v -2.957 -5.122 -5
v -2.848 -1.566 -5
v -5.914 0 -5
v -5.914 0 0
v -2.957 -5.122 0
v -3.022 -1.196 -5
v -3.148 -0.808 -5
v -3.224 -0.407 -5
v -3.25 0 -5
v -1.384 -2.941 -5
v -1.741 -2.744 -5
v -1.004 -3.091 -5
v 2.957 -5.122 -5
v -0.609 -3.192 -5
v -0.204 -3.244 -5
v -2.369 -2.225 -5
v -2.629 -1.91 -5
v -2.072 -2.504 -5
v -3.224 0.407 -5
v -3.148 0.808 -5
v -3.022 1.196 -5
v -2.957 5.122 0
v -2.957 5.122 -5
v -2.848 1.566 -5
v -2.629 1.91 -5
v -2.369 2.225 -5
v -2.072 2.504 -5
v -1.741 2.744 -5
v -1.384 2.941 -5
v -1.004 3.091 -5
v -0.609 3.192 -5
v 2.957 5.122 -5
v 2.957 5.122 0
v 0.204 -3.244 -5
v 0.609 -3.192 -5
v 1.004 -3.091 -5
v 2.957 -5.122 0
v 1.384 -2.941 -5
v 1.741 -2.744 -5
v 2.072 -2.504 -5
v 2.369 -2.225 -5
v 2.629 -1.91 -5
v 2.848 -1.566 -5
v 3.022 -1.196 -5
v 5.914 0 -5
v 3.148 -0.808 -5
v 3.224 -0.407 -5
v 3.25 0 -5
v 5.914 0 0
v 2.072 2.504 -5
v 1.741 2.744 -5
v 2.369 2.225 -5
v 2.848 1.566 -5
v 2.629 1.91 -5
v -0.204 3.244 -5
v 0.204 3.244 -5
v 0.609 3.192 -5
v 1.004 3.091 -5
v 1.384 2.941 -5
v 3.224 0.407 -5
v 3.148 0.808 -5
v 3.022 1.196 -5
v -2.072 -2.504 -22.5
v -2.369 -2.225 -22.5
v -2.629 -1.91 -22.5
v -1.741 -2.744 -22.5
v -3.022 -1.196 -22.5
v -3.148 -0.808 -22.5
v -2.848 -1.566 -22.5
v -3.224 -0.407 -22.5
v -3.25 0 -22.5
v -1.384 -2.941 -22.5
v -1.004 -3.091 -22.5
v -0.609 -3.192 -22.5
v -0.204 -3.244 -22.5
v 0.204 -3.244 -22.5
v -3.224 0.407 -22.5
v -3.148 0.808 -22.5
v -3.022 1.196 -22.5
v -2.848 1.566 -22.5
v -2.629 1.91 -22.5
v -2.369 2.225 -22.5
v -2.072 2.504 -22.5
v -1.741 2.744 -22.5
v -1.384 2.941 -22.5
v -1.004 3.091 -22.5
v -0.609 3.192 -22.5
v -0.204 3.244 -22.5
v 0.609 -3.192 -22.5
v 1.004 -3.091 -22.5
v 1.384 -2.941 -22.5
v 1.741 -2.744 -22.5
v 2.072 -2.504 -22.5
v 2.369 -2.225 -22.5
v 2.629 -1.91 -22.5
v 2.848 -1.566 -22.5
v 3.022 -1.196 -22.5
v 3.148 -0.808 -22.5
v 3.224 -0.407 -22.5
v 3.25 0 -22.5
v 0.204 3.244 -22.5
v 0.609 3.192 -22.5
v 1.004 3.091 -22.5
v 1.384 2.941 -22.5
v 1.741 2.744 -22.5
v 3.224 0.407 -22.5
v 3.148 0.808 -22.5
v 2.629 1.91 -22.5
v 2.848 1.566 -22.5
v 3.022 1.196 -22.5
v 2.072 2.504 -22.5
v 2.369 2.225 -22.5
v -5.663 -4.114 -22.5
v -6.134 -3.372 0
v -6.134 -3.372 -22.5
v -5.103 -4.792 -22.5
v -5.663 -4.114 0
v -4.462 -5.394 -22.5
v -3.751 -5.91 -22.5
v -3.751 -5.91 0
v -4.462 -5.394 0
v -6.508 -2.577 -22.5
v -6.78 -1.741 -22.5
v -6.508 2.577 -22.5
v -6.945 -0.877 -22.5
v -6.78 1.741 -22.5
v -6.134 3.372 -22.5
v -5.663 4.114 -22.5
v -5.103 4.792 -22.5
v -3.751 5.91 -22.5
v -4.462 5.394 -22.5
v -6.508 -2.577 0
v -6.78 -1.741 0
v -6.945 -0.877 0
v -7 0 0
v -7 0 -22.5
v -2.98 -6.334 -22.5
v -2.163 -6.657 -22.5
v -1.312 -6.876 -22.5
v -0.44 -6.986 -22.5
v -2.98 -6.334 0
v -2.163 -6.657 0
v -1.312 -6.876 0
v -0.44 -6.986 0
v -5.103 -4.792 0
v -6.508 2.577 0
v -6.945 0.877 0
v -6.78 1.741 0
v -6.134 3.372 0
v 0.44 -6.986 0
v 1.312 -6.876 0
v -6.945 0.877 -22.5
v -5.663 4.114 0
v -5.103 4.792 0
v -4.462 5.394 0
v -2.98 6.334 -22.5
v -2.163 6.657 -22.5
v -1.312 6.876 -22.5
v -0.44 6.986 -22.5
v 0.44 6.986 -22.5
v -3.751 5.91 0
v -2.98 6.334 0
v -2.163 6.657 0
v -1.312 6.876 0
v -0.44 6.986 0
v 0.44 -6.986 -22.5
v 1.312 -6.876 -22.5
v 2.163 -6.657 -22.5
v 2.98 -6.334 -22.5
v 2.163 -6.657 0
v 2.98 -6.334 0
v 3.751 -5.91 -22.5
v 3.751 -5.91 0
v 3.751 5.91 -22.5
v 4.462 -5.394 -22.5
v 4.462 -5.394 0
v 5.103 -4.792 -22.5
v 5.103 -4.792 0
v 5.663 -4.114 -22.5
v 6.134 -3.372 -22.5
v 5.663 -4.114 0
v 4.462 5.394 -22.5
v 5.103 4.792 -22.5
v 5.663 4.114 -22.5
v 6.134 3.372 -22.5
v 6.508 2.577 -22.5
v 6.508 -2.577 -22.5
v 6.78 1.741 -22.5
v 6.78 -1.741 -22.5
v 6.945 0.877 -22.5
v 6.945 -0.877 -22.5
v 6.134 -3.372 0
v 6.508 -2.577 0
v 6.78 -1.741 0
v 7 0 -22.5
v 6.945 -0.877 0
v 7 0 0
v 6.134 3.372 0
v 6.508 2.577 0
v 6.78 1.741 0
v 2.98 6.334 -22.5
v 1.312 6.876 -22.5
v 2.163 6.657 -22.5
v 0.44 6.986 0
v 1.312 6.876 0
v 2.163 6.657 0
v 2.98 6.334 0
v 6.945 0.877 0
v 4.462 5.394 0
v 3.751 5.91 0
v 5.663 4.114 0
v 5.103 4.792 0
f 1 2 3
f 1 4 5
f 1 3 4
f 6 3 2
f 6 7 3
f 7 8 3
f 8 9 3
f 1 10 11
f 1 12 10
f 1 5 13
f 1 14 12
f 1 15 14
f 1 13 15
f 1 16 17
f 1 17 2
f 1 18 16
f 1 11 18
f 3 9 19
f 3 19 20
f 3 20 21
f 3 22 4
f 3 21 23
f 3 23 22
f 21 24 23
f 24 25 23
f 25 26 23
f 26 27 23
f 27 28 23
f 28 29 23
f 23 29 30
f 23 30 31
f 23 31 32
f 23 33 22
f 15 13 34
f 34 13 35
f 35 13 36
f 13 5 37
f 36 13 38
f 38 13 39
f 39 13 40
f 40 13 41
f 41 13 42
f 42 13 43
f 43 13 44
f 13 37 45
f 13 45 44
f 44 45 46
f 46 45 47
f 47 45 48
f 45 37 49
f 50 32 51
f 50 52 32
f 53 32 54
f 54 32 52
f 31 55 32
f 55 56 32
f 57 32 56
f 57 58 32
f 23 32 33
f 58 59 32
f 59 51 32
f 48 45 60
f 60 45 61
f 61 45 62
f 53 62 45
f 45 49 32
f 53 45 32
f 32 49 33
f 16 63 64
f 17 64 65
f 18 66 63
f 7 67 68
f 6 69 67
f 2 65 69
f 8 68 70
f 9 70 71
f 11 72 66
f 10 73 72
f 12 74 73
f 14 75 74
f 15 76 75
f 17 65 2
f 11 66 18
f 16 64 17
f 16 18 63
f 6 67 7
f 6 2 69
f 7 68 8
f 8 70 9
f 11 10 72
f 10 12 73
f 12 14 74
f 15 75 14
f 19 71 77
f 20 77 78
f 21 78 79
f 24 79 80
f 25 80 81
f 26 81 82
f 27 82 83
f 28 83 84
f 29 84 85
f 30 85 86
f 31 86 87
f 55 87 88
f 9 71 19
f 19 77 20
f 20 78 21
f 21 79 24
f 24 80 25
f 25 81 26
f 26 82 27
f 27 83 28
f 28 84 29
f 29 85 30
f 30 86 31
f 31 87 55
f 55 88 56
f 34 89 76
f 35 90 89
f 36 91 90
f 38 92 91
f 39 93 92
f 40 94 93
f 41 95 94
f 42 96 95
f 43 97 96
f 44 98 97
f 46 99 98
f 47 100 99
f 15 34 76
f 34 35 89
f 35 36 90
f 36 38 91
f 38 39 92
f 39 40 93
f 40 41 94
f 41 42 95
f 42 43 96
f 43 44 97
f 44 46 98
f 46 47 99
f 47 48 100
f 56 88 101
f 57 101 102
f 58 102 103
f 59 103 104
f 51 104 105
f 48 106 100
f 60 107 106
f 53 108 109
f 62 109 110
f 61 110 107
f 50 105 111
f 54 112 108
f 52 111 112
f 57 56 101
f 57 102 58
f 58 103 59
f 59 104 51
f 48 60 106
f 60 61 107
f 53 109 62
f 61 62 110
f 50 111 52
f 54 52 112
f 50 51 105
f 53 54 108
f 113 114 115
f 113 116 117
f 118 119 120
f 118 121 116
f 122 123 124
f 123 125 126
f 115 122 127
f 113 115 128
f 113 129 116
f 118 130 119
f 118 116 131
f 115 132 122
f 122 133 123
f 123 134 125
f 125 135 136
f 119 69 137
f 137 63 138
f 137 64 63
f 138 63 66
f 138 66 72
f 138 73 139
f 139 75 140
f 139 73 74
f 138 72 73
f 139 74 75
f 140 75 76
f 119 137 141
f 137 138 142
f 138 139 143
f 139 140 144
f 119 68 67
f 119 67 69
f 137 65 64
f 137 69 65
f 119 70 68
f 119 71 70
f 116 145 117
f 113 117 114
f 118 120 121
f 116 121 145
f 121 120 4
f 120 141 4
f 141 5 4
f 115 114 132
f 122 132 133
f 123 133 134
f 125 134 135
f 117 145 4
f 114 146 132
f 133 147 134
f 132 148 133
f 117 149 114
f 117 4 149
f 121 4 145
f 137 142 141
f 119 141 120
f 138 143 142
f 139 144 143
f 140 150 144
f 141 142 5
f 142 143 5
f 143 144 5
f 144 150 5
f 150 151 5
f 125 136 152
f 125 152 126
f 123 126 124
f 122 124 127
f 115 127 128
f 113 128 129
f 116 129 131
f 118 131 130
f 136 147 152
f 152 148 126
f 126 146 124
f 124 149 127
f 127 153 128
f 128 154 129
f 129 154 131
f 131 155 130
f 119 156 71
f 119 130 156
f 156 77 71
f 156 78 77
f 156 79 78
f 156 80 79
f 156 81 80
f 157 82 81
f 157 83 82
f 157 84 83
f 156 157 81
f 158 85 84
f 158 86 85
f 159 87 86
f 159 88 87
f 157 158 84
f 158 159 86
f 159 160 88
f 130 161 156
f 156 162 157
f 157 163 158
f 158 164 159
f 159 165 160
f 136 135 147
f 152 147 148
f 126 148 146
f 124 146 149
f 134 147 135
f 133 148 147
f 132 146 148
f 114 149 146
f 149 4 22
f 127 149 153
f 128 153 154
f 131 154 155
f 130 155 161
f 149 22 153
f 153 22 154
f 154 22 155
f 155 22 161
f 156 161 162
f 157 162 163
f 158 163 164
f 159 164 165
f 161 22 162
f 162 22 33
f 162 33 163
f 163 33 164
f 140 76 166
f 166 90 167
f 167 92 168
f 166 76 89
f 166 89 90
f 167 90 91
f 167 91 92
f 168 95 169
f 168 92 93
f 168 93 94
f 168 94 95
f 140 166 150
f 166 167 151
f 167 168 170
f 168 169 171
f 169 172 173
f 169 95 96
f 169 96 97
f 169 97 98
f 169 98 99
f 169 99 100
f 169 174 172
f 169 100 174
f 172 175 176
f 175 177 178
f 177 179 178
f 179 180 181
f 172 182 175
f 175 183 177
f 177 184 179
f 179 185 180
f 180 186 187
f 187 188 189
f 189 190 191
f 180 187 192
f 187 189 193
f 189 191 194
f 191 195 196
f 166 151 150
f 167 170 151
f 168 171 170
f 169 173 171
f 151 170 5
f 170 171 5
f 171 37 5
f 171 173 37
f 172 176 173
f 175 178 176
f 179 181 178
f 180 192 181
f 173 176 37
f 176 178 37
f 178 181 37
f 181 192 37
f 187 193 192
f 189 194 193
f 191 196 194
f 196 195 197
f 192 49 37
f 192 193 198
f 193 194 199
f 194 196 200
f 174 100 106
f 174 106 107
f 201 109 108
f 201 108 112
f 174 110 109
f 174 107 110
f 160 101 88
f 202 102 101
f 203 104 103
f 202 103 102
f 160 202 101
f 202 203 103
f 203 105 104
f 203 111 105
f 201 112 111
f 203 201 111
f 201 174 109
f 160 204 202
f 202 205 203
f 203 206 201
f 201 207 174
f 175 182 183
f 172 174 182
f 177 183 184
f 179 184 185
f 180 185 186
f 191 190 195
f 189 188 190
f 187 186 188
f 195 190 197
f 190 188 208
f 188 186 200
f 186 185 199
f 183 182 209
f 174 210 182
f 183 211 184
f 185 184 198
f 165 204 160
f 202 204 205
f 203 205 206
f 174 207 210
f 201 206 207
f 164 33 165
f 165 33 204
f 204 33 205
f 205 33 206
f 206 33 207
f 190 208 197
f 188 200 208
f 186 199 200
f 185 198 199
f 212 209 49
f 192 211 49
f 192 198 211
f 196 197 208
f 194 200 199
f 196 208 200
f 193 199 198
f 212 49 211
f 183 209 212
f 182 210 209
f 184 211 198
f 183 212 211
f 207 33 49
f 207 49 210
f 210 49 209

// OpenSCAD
$fn = 50;

difference() {
	union() {
		translate(v = [0, 0, -22.5]) {
			cylinder(h = 22.5, r = 7.0);
		}
	}
	union() {
		translate(v = [0, 0, 0]) {
			rotate(a = [0, 0, 0]) {
				difference() {
					union() {
						translate(v = [0, 0, -5]) {
							linear_extrude(height = 5) {
								polygon(points = [[5.914249999999999, 0.0], [2.957125, 5.1218907443321156], [-2.9571249999999982, 5.1218907443321156], [-5.914249999999999, 7.242867331857232e-16], [-2.9571250000000022, -5.121890744332115], [2.9571249999999956, -5.121890744332118]]);
							}
						}
					}
					union();
				}
			}
		}
		#translate(v = [0, 0, -100.0]) {
			cylinder(h = 200, r = 3.25);
		}
	}
}
